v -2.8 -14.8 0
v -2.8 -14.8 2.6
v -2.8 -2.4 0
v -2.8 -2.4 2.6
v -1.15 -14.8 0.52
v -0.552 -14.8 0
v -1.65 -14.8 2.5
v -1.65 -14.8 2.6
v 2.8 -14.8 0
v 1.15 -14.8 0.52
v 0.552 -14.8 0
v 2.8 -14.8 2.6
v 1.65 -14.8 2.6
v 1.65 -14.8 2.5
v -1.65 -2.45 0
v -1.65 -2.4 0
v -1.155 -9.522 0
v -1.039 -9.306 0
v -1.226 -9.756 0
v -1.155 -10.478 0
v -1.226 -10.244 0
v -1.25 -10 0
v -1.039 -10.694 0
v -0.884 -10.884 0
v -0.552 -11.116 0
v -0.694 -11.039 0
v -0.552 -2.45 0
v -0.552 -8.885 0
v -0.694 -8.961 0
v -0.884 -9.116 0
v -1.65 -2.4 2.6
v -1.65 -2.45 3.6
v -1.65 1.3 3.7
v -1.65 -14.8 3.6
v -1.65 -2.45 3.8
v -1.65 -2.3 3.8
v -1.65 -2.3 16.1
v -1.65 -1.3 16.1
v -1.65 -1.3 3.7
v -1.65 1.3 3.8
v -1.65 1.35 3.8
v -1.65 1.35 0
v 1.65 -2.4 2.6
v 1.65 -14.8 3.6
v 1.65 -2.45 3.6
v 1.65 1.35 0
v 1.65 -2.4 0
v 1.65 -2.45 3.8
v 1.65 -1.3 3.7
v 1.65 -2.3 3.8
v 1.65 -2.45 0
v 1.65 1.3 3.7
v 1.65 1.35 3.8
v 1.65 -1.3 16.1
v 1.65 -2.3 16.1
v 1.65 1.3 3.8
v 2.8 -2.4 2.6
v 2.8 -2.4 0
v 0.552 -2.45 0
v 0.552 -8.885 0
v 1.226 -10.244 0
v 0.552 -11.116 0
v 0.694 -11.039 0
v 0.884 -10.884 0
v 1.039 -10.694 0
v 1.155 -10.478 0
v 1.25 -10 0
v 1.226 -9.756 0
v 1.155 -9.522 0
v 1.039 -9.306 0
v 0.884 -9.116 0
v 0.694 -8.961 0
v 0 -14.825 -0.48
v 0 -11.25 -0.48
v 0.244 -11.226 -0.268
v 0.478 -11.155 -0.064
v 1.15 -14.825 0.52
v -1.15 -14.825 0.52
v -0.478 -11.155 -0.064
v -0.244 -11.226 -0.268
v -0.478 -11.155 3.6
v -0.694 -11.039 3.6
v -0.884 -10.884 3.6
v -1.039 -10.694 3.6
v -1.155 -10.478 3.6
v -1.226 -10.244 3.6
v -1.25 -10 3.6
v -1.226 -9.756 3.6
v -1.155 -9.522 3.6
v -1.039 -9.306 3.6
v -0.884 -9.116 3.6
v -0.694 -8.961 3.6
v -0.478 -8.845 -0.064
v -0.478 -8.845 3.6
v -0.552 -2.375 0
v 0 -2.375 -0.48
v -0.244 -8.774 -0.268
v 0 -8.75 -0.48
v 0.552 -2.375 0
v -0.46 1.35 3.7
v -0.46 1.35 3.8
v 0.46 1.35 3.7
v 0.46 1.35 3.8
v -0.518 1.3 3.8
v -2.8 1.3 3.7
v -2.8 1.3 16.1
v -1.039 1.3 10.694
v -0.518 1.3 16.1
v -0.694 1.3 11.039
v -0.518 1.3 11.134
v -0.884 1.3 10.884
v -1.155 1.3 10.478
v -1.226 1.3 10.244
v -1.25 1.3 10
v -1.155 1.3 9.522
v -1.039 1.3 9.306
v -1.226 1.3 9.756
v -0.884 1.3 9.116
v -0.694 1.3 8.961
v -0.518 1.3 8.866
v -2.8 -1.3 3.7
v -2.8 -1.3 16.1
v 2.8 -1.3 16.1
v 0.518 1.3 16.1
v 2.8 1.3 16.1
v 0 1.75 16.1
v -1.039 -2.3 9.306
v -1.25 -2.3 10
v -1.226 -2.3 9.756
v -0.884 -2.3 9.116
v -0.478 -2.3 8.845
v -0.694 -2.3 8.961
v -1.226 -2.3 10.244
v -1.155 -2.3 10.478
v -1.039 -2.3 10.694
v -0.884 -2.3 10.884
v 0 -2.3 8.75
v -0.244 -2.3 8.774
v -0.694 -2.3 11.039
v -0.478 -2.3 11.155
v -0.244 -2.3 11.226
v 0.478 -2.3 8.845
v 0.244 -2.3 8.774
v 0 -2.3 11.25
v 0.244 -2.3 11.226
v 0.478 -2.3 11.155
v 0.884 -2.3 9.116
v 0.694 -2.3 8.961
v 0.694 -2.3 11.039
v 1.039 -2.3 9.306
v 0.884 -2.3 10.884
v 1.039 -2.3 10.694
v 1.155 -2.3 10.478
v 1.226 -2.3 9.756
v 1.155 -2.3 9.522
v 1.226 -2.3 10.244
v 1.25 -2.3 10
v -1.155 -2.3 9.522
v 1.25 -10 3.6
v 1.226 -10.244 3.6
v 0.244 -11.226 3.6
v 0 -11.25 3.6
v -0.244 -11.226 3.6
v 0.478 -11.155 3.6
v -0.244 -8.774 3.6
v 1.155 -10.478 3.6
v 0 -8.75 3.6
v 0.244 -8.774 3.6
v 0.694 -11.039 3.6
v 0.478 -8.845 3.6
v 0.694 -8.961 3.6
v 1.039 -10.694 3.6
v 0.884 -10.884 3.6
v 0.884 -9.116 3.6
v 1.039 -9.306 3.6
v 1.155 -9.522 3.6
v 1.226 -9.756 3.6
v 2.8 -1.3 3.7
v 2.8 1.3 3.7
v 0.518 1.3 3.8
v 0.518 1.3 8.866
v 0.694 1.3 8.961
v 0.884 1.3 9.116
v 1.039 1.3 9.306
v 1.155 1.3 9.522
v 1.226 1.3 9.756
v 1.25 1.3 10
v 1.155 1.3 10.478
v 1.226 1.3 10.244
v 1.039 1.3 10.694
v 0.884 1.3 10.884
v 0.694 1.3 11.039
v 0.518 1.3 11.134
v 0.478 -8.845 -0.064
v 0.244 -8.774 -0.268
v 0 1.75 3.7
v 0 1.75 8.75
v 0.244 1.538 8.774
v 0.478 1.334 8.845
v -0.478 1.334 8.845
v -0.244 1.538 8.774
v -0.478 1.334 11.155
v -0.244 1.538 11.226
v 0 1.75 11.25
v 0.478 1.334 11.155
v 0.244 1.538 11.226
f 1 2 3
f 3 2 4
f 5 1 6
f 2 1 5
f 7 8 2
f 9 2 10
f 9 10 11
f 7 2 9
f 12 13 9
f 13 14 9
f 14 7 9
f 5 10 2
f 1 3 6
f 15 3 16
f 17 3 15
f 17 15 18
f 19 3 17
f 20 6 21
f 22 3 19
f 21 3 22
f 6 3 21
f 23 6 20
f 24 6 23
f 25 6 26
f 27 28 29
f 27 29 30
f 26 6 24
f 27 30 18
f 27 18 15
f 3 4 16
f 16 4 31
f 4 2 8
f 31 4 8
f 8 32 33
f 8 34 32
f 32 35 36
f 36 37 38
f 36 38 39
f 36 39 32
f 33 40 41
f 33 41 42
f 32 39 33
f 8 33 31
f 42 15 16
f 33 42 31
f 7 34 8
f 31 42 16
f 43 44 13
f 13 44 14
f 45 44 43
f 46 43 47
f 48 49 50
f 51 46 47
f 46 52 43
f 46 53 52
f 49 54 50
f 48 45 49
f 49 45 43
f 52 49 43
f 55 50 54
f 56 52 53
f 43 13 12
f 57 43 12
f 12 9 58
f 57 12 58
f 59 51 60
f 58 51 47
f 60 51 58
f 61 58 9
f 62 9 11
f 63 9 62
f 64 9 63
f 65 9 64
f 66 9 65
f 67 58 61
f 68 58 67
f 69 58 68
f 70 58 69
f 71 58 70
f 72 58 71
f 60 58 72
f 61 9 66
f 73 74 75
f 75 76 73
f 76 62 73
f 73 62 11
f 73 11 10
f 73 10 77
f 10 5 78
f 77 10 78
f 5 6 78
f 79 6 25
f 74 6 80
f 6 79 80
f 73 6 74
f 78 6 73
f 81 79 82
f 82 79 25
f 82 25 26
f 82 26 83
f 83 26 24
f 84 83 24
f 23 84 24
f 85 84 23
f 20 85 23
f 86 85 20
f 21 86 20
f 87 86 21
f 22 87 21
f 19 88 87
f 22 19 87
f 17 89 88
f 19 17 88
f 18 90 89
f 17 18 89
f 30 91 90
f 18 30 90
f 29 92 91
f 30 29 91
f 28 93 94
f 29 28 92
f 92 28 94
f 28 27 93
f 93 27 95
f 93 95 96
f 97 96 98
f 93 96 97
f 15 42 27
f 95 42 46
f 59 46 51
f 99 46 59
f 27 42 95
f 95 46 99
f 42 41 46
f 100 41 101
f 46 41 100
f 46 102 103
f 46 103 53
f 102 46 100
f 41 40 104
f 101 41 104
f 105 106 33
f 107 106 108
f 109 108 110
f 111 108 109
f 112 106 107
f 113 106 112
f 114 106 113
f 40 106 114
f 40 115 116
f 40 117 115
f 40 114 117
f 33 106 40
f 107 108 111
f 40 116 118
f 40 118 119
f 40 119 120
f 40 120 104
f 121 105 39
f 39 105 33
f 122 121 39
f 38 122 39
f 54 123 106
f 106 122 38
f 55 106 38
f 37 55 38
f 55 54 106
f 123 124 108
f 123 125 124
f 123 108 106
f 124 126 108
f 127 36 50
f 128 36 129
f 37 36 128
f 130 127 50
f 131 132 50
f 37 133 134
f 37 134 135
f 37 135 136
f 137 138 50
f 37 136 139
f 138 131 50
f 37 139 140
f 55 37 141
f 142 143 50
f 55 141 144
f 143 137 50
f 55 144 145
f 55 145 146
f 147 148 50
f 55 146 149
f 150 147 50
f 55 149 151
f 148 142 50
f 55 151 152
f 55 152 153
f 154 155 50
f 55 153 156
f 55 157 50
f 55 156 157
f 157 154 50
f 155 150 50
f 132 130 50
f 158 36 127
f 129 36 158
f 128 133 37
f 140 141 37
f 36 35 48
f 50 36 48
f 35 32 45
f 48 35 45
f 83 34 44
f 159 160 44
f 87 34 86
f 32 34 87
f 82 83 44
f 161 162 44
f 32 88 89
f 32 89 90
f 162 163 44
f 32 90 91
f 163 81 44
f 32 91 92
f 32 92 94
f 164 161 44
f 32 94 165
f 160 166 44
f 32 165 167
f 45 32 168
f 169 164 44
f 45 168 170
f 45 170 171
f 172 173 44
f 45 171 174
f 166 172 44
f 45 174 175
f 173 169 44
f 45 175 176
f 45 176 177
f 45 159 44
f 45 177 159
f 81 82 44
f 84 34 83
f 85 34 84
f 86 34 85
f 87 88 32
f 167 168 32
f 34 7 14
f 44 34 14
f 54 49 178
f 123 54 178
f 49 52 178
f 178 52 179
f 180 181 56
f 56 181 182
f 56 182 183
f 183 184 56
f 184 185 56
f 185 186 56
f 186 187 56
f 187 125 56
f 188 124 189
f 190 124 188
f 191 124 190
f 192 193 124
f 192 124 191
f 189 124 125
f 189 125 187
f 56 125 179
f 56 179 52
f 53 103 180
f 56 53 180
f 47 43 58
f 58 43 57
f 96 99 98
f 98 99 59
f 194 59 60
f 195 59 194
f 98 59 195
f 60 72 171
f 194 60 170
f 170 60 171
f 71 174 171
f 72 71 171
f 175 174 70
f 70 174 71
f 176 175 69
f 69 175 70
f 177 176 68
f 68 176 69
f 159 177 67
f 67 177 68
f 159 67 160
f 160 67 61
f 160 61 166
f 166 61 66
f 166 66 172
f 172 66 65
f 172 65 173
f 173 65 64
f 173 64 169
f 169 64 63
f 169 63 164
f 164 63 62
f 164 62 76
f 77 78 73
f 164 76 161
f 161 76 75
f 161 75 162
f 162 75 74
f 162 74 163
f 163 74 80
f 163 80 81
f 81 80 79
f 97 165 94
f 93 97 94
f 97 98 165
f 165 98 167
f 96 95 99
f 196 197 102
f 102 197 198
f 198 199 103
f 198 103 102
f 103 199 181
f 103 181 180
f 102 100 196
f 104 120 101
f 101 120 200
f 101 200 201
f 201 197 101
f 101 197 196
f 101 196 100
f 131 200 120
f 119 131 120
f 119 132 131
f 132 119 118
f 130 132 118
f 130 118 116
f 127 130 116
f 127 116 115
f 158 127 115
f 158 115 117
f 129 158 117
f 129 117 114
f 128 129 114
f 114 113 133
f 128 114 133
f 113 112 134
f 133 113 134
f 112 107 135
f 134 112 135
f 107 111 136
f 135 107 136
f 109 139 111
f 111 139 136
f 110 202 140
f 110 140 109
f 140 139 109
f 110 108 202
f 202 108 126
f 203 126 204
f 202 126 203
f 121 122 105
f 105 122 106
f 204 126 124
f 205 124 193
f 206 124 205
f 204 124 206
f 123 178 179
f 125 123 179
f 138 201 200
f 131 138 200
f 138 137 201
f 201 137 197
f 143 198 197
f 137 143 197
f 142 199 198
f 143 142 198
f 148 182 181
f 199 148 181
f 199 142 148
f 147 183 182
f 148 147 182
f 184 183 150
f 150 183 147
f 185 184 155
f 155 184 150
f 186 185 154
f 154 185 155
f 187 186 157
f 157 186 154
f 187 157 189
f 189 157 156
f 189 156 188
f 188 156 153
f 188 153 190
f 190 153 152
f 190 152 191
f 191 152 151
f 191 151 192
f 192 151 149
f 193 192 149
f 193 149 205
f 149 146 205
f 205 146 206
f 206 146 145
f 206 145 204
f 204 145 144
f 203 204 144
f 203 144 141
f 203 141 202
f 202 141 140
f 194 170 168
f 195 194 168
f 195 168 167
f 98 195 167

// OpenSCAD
h = 15;

module m3nut() {
	cylinder(r=3.3,h=2.3,center=true,$fn=6);
}

module blindjoint() {

	difference() {
		union() {
			translate([0,0,h/2+2.6/2 + 1.1  ])
				cube([5.6 ,2.6,h-2.6], center=true);
			
			translate([-5.6/2,-1.1/2 +2.6/2 + 1/2 ,h/2+2.6/2 + 1.1 ])
			rotate([0,0,180])
				translate([-5.6/2,-0.5,0])
				linear_extrude(height=h-2.6,center=true,convexity=10) 
					polygon(points=[[0,0],[1.15,1],[-1.15,1],[0,0]], paths=[[0,1,2,3]]);

			translate([0,-2.6/2 - 1.1/2  + 0.1 ,h/2+1.1])
				cube([3.3 ,1.1,h], center=true);

			rotate([90,00,00])
				translate([0,(2.6/2),h/2+1.1])
				cube([5.6 ,2.6,h-2.6], center=true);

			rotate([90,00,00])
				translate([0,2.6+1.1/2 - 0.1  ,h/2 - 0.2])
					cube([3.3 ,1.1,h], center=true);

			rotate([90,180,00])
			translate([-5.6/2  ,-0.02,h/2+1.1  ])
			rotate([0,0,180])
				translate([-5.6/2,-0.5,0])
				linear_extrude(height=h-2.6+0.05,center=true,convexity=10) 
					polygon(points=[[0,0],[1.15,1],[-1.15,1],[0,0]], paths=[[0,1,2,3]]);

			translate([0,0-0.5  - 0.05,2.6/2+1.1/2 + 1/2 - 0.50  + 0.05 ])
			cube([3.3, 2.6+1.1 + 0.1, 2.6+1.1+ 0.1], center=true);

		}


//		translate([0,-10,2.6/2 - 1/2])
//		rotate([0,0,30])
//			cylinder(r=3.3,h=2.6+1.1 + 0.1,center=true,$fn=6);

		translate([0,-10,2.6/2 - 1/2 + 1.1 - 0.02])
			cylinder(r=1.25,h=2.6+1.1 + 3.0+ 0.1,center=true,$fn=32);
		
//		rotate([-90,0,180])
//		translate([0,-10,(2.6+1.1)/2  -1.1 - 2.6/2])
//		rotate([0,0,30])
//			cylinder(r=3.3,h=2.6+1.1 + 0.1,center=true,$fn=6);

		rotate([-90,0,180])
		translate([0,-10,-1.1/2 + 1.1])
			cylinder(r=1.25,h=2.6+1.1 + 3.0 + 0.1,center=true,$fn=32);


	}
}

blindjoint();
